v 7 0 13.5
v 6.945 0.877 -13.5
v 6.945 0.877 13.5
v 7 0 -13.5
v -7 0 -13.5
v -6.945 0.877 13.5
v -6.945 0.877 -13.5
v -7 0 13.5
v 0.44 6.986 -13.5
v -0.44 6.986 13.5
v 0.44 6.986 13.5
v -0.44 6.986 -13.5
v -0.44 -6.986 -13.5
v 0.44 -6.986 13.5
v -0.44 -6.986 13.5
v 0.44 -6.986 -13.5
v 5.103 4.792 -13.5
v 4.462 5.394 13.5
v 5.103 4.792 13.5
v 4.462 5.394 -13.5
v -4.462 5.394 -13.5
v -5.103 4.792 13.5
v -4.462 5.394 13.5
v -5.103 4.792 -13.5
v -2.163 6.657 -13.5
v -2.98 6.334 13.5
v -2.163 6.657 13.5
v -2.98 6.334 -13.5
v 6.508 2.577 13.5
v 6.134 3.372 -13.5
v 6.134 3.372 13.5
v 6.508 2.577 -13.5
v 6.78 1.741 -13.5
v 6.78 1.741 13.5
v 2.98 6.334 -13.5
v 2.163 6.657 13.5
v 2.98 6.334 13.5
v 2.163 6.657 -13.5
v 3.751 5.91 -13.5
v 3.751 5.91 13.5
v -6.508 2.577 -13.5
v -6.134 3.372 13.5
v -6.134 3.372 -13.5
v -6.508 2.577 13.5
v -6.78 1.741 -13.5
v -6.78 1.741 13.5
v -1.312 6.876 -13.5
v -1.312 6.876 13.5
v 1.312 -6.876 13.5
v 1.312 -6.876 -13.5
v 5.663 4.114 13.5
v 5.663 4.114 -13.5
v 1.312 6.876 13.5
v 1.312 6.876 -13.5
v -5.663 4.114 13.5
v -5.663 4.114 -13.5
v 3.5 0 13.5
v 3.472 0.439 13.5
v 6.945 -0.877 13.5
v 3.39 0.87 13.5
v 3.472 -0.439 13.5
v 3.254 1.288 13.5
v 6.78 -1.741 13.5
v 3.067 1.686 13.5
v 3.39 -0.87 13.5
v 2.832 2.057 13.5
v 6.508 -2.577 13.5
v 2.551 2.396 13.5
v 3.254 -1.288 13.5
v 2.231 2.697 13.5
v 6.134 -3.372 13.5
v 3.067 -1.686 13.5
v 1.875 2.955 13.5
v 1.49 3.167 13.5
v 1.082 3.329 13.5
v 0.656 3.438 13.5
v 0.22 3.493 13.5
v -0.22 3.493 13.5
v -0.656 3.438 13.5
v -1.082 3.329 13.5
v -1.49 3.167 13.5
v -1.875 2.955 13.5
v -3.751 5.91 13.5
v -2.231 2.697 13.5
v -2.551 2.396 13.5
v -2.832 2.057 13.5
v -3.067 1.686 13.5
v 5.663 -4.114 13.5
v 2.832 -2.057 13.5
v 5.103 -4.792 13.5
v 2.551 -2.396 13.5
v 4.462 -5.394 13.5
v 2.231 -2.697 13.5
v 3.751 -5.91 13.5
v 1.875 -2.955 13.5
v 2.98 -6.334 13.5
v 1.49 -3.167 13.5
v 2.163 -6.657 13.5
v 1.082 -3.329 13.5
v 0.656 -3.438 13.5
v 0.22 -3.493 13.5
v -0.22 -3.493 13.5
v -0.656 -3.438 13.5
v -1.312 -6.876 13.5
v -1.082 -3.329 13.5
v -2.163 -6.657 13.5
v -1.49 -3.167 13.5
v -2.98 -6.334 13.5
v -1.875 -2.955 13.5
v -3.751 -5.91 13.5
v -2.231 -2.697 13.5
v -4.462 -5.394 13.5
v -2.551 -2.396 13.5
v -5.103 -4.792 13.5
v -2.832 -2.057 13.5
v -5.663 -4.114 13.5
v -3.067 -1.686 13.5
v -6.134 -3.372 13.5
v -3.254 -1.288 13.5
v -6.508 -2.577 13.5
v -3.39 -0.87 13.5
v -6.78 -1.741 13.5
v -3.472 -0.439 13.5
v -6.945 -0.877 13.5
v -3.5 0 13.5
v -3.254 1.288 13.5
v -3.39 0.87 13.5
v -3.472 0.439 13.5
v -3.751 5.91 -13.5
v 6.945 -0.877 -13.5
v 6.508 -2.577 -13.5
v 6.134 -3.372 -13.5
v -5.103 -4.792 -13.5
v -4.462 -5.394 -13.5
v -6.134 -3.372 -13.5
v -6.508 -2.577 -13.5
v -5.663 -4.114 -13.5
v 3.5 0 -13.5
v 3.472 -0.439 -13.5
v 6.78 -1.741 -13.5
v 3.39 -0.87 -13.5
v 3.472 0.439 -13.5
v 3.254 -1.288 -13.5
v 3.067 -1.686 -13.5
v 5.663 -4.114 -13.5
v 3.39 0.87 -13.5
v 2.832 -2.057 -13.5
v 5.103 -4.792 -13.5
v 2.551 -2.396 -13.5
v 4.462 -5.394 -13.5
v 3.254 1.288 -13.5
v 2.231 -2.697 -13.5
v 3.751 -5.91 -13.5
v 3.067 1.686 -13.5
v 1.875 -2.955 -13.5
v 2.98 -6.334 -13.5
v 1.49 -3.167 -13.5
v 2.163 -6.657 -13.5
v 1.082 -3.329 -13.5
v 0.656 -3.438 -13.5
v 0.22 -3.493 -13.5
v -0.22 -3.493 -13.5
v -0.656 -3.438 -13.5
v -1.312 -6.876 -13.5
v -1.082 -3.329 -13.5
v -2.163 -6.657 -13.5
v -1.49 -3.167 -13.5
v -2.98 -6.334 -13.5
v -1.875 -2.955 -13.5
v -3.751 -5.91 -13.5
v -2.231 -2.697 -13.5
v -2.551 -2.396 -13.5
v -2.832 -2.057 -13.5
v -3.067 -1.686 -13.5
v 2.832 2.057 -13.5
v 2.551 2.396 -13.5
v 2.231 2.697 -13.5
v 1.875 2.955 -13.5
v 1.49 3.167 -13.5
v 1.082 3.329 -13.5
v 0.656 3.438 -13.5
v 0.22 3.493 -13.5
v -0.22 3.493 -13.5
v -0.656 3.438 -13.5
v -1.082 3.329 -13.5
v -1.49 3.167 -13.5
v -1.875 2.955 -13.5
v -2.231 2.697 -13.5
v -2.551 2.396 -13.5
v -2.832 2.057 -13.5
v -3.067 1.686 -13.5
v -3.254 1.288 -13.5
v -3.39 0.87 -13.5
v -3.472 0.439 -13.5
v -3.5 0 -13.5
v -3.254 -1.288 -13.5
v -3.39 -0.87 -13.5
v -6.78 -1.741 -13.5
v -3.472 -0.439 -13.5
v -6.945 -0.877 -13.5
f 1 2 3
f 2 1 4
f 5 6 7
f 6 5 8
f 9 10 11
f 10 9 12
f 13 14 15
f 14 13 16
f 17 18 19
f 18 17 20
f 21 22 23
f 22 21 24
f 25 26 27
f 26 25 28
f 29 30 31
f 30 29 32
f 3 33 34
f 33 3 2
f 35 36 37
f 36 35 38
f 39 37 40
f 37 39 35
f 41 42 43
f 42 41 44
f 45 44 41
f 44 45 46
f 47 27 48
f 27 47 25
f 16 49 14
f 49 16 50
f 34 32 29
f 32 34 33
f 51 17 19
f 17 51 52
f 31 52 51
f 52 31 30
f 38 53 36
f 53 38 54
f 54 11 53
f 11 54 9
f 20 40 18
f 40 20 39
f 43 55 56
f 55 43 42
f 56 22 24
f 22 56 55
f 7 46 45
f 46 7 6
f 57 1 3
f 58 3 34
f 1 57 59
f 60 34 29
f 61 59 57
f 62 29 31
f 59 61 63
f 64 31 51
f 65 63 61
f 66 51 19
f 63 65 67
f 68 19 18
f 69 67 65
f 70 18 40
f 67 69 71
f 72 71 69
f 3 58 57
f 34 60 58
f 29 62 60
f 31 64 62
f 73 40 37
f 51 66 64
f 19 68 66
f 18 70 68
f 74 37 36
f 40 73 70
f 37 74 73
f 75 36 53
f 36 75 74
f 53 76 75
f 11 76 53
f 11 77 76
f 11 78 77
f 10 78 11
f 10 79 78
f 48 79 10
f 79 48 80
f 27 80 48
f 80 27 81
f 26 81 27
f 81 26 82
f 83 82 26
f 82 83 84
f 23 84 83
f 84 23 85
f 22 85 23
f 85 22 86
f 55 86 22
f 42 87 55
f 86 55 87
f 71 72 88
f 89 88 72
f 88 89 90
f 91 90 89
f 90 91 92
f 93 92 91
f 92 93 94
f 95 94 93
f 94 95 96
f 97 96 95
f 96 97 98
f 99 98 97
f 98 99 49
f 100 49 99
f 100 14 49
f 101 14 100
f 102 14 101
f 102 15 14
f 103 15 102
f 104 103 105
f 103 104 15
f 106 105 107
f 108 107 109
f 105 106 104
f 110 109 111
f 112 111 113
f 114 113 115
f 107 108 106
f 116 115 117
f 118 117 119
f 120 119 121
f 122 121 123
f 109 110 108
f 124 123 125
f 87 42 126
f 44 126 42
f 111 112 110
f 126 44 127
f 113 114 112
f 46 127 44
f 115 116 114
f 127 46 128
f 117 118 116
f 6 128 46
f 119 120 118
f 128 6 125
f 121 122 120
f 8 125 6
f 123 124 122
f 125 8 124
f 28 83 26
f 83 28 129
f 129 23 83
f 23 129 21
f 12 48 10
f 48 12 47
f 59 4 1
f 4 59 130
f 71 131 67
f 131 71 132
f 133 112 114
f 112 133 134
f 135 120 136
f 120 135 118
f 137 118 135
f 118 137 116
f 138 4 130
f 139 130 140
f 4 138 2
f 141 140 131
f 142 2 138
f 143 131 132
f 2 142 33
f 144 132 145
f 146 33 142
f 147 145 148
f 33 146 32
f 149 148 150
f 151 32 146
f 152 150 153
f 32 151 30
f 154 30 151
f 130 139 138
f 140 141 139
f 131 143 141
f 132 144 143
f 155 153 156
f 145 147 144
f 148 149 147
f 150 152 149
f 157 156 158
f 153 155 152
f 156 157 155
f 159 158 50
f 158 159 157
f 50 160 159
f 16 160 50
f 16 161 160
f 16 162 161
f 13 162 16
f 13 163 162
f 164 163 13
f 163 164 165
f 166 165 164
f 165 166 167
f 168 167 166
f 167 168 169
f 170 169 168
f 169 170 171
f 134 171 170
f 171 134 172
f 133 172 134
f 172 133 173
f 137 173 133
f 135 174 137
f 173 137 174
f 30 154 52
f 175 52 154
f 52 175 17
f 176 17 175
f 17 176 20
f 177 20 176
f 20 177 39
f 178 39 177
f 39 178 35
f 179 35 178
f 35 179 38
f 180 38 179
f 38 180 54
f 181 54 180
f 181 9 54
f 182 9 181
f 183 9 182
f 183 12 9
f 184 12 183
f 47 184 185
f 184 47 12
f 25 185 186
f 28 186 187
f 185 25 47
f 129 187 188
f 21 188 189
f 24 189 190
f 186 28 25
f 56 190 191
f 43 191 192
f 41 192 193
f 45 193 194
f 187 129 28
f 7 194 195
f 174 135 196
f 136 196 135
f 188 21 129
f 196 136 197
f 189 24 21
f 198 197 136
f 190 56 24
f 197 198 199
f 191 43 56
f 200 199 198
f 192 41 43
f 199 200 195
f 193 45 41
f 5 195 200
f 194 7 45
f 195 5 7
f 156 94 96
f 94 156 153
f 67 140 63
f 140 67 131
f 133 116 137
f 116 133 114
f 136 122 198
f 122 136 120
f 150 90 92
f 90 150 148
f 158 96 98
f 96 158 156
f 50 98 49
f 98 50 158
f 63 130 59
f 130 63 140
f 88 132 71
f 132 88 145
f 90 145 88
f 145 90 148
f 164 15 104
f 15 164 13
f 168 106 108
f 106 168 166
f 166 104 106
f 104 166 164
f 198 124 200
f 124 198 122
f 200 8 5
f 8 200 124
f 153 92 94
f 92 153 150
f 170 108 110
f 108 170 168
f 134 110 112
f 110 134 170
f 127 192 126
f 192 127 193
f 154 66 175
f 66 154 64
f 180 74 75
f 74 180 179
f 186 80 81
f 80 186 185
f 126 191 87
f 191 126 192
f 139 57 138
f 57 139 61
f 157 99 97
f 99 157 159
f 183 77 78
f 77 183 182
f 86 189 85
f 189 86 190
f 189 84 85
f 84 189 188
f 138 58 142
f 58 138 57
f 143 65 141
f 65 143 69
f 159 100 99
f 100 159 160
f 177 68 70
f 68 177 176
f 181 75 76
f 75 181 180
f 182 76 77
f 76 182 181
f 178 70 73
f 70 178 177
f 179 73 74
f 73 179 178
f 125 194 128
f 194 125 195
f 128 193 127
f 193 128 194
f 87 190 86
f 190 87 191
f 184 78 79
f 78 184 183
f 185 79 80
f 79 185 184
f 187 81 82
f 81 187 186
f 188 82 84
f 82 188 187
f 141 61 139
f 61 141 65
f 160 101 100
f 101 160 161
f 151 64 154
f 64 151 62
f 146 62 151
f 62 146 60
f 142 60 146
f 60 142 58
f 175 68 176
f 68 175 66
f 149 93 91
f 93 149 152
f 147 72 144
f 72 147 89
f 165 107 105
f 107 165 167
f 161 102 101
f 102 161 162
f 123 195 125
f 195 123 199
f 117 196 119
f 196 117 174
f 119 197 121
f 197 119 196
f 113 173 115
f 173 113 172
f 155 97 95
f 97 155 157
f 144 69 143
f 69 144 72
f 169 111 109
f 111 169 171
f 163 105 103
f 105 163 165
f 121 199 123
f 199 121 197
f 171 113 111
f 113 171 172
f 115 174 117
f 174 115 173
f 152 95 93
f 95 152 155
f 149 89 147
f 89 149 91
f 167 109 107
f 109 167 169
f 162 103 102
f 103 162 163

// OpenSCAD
$fn = 50;


difference() {
	union() {
		translate(v = [0, 0, -13.5000000000]) {
			cylinder(h = 27, r = 7.0000000000);
		}
	}
	union() {
		translate(v = [0, 0, -100.0000000000]) {
			cylinder(h = 200, r = 3.5000000000);
		}
	}
}
